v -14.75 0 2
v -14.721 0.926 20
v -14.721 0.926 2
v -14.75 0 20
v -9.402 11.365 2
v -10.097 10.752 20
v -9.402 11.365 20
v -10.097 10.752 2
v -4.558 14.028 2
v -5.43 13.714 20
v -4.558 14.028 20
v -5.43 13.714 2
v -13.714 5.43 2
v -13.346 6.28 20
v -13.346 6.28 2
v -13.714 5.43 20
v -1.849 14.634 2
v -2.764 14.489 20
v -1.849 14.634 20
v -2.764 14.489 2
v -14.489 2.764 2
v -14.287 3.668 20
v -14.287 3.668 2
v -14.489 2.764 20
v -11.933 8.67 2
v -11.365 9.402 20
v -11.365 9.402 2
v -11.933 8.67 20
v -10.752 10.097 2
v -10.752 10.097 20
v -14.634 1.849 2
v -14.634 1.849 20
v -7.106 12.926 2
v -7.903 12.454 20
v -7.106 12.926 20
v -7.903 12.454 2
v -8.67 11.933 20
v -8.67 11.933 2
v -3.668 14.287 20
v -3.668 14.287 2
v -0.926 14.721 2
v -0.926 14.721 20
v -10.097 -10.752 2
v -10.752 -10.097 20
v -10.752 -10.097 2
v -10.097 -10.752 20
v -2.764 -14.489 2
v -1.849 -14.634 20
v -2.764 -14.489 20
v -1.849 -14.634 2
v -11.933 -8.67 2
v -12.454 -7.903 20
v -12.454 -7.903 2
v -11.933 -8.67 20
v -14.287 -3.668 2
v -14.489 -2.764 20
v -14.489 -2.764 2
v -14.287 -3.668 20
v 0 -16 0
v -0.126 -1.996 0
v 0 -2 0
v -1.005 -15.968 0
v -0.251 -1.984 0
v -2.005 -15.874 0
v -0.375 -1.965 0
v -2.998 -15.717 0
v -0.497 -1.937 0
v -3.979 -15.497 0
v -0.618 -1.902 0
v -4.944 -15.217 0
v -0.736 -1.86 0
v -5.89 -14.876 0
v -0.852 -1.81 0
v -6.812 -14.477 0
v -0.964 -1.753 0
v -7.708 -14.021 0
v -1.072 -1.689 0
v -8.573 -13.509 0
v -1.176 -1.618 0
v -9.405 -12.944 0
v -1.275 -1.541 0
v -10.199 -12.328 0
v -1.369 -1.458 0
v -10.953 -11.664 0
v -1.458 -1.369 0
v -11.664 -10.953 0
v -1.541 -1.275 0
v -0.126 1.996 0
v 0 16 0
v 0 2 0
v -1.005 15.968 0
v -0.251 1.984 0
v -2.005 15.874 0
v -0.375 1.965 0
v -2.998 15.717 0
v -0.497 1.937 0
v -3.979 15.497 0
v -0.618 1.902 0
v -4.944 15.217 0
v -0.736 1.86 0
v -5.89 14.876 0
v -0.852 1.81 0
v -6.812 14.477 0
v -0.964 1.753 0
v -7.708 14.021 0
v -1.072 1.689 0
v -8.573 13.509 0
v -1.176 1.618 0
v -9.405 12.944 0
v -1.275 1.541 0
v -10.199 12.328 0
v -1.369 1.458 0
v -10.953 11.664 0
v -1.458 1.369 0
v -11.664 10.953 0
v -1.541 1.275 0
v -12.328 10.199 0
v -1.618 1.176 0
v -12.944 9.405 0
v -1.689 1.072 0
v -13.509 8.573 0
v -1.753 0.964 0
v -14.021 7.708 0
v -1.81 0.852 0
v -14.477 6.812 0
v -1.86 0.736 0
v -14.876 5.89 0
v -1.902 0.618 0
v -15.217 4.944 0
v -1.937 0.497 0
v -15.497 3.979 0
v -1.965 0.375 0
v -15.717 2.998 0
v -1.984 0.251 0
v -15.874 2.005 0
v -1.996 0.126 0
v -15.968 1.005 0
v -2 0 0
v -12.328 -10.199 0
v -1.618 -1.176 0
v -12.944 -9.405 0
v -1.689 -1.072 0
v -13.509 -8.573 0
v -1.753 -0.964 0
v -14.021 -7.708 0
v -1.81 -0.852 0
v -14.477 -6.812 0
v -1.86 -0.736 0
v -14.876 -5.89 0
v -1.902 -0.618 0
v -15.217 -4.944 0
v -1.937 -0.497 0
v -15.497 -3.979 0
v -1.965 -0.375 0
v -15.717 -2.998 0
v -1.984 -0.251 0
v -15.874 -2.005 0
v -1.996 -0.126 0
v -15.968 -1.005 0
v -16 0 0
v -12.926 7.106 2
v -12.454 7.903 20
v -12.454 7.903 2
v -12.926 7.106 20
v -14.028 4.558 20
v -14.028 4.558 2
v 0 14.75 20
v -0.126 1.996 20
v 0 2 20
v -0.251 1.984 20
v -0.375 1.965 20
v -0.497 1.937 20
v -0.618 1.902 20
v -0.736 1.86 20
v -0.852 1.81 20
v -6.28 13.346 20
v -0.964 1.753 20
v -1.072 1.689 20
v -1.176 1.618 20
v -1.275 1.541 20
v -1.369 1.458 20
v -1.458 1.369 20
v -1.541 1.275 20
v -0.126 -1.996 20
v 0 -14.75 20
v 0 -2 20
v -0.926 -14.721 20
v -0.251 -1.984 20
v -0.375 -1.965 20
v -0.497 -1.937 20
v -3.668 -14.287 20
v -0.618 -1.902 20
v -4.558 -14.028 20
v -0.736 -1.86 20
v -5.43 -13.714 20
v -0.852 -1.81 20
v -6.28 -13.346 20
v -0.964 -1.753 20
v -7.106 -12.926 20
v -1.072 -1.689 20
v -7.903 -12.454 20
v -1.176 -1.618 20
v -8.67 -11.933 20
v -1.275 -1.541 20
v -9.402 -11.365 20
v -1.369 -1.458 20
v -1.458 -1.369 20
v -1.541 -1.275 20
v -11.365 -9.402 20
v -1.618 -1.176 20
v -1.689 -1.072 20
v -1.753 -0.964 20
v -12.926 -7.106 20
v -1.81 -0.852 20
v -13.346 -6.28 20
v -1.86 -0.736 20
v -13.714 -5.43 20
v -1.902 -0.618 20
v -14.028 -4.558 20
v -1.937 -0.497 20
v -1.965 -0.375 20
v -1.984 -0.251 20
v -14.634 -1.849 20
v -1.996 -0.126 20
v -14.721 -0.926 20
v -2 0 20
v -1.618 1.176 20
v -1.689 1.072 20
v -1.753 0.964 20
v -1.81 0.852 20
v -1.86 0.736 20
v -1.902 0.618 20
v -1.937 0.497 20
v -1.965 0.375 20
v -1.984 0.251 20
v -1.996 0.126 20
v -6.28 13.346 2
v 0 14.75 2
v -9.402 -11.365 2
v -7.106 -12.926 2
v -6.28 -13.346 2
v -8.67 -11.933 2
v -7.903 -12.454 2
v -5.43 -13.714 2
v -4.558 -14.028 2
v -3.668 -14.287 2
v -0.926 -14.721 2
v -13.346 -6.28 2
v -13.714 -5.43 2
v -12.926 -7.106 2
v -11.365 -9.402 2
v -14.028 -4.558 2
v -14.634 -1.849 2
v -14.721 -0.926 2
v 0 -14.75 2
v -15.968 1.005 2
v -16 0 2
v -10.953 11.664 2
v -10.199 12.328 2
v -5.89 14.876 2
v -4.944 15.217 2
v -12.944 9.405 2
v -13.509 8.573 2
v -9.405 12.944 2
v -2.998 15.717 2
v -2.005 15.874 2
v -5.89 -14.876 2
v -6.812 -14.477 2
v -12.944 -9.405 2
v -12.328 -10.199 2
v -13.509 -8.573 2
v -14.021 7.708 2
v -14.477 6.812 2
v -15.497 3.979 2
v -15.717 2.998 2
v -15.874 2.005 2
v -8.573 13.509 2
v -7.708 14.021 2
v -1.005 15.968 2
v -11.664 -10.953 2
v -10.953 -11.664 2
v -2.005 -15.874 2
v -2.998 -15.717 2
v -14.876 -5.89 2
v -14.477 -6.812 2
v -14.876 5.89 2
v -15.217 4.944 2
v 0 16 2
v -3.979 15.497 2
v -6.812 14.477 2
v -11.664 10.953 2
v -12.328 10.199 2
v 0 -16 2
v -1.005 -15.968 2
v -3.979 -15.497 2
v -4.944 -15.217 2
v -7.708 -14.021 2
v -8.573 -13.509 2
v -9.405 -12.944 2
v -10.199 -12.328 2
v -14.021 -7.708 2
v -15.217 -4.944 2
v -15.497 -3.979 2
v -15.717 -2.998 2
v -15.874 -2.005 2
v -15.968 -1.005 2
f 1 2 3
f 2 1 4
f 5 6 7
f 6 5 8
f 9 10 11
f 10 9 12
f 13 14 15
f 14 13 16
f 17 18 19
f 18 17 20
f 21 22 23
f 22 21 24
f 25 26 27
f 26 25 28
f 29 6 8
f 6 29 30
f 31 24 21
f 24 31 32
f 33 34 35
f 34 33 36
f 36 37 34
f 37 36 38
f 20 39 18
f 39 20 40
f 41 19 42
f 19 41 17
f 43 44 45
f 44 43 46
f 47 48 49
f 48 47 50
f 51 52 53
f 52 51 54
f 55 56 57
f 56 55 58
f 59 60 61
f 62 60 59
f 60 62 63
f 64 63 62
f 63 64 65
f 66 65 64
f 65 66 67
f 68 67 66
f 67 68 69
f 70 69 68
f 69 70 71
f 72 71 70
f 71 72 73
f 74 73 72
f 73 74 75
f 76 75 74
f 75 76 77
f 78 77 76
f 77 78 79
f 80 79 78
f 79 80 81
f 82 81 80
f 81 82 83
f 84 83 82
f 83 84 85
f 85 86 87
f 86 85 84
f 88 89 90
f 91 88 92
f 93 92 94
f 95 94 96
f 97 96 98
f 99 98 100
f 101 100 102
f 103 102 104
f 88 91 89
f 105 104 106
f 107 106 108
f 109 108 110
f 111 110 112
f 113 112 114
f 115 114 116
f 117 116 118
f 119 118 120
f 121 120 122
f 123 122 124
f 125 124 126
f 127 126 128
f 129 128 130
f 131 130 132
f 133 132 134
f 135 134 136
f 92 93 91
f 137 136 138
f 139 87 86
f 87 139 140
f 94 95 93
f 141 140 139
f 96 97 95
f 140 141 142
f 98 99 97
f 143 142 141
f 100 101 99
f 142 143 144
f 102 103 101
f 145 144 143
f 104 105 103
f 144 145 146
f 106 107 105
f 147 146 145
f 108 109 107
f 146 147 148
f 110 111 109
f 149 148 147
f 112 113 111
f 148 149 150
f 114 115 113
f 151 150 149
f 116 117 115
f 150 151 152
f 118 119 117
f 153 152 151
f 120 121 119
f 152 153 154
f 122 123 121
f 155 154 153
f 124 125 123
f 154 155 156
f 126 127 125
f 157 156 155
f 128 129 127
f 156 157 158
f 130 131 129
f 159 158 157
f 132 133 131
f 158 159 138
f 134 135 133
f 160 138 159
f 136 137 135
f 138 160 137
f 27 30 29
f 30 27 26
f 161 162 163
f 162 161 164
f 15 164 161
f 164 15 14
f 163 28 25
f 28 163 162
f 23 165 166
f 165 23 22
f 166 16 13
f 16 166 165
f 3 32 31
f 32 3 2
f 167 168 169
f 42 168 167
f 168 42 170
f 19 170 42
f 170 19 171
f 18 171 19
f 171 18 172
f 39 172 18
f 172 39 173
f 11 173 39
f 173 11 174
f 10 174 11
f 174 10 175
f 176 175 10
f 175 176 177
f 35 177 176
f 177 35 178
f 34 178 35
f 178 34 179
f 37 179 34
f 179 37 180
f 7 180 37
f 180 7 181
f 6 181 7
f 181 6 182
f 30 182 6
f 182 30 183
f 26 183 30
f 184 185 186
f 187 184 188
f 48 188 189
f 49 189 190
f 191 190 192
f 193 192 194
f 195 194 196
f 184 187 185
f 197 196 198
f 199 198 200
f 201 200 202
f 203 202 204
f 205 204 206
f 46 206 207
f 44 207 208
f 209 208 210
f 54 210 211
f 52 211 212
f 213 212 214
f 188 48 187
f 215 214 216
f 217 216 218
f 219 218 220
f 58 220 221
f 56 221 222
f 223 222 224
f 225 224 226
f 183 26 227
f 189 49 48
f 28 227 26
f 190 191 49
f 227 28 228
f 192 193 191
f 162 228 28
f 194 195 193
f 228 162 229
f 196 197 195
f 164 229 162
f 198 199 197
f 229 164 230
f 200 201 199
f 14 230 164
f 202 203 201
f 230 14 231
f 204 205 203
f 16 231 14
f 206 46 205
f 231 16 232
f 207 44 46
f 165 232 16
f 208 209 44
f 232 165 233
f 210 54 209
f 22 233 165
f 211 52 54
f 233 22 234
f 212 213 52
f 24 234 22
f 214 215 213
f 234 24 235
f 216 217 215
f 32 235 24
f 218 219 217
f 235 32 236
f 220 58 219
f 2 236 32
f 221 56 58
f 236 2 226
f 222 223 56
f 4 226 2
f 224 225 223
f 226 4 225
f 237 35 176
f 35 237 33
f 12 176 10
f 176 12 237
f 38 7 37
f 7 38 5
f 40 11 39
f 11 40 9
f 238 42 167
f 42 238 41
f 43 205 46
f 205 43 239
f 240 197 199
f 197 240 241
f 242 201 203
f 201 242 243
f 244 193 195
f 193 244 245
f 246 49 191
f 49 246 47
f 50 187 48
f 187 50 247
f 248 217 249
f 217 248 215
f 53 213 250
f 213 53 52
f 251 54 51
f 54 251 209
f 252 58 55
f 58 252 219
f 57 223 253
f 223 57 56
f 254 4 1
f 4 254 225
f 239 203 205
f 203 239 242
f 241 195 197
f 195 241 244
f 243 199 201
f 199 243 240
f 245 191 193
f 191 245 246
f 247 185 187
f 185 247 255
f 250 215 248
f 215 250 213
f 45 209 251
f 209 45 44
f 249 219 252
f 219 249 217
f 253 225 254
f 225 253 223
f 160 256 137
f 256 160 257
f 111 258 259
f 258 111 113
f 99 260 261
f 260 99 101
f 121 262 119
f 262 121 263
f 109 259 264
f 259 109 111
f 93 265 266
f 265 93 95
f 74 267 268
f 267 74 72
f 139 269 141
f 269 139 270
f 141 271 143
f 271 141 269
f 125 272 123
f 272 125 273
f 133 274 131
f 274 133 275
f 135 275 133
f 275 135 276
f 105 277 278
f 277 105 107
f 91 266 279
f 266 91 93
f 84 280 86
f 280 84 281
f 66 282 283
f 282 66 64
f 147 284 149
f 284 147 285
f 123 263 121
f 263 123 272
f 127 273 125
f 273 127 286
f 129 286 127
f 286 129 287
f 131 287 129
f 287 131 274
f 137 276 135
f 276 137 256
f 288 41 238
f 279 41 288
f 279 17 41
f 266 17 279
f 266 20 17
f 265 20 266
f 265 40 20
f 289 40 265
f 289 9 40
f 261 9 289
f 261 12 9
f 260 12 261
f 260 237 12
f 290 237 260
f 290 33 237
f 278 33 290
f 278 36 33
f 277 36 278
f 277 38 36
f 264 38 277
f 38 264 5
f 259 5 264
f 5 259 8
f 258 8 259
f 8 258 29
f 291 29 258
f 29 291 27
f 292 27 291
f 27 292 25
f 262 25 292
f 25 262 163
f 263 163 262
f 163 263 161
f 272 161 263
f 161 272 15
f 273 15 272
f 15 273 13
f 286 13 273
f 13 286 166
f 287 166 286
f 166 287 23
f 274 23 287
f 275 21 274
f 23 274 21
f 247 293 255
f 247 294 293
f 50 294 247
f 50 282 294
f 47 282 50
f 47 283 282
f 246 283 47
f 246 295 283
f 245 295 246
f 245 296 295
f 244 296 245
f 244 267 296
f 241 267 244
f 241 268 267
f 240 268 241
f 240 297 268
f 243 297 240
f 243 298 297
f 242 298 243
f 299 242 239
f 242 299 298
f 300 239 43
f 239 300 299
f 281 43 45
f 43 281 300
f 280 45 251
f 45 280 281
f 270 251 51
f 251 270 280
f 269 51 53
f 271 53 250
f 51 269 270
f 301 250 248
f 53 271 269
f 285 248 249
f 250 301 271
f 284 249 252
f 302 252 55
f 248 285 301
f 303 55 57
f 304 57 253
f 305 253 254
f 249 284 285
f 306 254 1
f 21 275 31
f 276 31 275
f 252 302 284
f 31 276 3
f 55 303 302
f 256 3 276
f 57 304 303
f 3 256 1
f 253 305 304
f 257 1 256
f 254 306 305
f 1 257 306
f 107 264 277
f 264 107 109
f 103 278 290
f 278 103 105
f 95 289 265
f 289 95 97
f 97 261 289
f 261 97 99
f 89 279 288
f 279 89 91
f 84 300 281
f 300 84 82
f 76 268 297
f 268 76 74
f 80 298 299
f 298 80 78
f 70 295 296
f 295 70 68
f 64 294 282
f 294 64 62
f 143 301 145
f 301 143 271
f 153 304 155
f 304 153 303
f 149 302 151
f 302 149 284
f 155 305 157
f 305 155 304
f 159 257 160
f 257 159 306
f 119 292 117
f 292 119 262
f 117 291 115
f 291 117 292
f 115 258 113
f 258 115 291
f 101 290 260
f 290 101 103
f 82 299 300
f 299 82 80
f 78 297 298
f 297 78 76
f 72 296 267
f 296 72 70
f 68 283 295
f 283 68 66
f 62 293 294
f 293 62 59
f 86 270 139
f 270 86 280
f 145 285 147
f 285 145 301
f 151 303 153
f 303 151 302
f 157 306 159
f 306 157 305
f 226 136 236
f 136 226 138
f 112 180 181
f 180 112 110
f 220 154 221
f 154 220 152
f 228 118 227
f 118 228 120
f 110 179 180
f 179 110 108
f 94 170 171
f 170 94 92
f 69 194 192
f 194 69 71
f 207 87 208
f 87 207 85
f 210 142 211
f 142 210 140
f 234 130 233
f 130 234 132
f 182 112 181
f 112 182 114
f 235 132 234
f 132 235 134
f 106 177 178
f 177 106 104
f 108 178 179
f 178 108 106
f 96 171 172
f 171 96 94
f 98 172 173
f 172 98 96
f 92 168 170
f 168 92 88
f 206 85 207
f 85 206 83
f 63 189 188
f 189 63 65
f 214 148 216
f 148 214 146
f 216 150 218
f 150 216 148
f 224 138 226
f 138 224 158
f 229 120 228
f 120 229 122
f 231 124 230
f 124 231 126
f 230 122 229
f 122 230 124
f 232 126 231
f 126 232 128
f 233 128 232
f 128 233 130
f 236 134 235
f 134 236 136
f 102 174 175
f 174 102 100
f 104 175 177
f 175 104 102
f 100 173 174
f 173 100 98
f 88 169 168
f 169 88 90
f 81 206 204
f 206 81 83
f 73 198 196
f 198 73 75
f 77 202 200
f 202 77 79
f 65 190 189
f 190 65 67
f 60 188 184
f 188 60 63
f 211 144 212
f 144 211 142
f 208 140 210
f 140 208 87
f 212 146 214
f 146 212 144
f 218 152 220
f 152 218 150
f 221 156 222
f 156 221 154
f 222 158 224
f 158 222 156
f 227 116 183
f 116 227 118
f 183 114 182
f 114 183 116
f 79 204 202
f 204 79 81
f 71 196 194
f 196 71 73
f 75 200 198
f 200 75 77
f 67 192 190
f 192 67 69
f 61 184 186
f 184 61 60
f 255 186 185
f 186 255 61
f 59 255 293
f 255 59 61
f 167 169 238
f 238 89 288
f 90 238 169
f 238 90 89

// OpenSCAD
$fn = 100;
difference() {
    union() {
        cylinder(r=29.5/2, h=20);
        cylinder(r=32/2, h=2);
    }
    translate([0,0,-1]) cylinder(r=2, h=30);
    translate([0,-20,-1]) cube([40,40,40]);
}
